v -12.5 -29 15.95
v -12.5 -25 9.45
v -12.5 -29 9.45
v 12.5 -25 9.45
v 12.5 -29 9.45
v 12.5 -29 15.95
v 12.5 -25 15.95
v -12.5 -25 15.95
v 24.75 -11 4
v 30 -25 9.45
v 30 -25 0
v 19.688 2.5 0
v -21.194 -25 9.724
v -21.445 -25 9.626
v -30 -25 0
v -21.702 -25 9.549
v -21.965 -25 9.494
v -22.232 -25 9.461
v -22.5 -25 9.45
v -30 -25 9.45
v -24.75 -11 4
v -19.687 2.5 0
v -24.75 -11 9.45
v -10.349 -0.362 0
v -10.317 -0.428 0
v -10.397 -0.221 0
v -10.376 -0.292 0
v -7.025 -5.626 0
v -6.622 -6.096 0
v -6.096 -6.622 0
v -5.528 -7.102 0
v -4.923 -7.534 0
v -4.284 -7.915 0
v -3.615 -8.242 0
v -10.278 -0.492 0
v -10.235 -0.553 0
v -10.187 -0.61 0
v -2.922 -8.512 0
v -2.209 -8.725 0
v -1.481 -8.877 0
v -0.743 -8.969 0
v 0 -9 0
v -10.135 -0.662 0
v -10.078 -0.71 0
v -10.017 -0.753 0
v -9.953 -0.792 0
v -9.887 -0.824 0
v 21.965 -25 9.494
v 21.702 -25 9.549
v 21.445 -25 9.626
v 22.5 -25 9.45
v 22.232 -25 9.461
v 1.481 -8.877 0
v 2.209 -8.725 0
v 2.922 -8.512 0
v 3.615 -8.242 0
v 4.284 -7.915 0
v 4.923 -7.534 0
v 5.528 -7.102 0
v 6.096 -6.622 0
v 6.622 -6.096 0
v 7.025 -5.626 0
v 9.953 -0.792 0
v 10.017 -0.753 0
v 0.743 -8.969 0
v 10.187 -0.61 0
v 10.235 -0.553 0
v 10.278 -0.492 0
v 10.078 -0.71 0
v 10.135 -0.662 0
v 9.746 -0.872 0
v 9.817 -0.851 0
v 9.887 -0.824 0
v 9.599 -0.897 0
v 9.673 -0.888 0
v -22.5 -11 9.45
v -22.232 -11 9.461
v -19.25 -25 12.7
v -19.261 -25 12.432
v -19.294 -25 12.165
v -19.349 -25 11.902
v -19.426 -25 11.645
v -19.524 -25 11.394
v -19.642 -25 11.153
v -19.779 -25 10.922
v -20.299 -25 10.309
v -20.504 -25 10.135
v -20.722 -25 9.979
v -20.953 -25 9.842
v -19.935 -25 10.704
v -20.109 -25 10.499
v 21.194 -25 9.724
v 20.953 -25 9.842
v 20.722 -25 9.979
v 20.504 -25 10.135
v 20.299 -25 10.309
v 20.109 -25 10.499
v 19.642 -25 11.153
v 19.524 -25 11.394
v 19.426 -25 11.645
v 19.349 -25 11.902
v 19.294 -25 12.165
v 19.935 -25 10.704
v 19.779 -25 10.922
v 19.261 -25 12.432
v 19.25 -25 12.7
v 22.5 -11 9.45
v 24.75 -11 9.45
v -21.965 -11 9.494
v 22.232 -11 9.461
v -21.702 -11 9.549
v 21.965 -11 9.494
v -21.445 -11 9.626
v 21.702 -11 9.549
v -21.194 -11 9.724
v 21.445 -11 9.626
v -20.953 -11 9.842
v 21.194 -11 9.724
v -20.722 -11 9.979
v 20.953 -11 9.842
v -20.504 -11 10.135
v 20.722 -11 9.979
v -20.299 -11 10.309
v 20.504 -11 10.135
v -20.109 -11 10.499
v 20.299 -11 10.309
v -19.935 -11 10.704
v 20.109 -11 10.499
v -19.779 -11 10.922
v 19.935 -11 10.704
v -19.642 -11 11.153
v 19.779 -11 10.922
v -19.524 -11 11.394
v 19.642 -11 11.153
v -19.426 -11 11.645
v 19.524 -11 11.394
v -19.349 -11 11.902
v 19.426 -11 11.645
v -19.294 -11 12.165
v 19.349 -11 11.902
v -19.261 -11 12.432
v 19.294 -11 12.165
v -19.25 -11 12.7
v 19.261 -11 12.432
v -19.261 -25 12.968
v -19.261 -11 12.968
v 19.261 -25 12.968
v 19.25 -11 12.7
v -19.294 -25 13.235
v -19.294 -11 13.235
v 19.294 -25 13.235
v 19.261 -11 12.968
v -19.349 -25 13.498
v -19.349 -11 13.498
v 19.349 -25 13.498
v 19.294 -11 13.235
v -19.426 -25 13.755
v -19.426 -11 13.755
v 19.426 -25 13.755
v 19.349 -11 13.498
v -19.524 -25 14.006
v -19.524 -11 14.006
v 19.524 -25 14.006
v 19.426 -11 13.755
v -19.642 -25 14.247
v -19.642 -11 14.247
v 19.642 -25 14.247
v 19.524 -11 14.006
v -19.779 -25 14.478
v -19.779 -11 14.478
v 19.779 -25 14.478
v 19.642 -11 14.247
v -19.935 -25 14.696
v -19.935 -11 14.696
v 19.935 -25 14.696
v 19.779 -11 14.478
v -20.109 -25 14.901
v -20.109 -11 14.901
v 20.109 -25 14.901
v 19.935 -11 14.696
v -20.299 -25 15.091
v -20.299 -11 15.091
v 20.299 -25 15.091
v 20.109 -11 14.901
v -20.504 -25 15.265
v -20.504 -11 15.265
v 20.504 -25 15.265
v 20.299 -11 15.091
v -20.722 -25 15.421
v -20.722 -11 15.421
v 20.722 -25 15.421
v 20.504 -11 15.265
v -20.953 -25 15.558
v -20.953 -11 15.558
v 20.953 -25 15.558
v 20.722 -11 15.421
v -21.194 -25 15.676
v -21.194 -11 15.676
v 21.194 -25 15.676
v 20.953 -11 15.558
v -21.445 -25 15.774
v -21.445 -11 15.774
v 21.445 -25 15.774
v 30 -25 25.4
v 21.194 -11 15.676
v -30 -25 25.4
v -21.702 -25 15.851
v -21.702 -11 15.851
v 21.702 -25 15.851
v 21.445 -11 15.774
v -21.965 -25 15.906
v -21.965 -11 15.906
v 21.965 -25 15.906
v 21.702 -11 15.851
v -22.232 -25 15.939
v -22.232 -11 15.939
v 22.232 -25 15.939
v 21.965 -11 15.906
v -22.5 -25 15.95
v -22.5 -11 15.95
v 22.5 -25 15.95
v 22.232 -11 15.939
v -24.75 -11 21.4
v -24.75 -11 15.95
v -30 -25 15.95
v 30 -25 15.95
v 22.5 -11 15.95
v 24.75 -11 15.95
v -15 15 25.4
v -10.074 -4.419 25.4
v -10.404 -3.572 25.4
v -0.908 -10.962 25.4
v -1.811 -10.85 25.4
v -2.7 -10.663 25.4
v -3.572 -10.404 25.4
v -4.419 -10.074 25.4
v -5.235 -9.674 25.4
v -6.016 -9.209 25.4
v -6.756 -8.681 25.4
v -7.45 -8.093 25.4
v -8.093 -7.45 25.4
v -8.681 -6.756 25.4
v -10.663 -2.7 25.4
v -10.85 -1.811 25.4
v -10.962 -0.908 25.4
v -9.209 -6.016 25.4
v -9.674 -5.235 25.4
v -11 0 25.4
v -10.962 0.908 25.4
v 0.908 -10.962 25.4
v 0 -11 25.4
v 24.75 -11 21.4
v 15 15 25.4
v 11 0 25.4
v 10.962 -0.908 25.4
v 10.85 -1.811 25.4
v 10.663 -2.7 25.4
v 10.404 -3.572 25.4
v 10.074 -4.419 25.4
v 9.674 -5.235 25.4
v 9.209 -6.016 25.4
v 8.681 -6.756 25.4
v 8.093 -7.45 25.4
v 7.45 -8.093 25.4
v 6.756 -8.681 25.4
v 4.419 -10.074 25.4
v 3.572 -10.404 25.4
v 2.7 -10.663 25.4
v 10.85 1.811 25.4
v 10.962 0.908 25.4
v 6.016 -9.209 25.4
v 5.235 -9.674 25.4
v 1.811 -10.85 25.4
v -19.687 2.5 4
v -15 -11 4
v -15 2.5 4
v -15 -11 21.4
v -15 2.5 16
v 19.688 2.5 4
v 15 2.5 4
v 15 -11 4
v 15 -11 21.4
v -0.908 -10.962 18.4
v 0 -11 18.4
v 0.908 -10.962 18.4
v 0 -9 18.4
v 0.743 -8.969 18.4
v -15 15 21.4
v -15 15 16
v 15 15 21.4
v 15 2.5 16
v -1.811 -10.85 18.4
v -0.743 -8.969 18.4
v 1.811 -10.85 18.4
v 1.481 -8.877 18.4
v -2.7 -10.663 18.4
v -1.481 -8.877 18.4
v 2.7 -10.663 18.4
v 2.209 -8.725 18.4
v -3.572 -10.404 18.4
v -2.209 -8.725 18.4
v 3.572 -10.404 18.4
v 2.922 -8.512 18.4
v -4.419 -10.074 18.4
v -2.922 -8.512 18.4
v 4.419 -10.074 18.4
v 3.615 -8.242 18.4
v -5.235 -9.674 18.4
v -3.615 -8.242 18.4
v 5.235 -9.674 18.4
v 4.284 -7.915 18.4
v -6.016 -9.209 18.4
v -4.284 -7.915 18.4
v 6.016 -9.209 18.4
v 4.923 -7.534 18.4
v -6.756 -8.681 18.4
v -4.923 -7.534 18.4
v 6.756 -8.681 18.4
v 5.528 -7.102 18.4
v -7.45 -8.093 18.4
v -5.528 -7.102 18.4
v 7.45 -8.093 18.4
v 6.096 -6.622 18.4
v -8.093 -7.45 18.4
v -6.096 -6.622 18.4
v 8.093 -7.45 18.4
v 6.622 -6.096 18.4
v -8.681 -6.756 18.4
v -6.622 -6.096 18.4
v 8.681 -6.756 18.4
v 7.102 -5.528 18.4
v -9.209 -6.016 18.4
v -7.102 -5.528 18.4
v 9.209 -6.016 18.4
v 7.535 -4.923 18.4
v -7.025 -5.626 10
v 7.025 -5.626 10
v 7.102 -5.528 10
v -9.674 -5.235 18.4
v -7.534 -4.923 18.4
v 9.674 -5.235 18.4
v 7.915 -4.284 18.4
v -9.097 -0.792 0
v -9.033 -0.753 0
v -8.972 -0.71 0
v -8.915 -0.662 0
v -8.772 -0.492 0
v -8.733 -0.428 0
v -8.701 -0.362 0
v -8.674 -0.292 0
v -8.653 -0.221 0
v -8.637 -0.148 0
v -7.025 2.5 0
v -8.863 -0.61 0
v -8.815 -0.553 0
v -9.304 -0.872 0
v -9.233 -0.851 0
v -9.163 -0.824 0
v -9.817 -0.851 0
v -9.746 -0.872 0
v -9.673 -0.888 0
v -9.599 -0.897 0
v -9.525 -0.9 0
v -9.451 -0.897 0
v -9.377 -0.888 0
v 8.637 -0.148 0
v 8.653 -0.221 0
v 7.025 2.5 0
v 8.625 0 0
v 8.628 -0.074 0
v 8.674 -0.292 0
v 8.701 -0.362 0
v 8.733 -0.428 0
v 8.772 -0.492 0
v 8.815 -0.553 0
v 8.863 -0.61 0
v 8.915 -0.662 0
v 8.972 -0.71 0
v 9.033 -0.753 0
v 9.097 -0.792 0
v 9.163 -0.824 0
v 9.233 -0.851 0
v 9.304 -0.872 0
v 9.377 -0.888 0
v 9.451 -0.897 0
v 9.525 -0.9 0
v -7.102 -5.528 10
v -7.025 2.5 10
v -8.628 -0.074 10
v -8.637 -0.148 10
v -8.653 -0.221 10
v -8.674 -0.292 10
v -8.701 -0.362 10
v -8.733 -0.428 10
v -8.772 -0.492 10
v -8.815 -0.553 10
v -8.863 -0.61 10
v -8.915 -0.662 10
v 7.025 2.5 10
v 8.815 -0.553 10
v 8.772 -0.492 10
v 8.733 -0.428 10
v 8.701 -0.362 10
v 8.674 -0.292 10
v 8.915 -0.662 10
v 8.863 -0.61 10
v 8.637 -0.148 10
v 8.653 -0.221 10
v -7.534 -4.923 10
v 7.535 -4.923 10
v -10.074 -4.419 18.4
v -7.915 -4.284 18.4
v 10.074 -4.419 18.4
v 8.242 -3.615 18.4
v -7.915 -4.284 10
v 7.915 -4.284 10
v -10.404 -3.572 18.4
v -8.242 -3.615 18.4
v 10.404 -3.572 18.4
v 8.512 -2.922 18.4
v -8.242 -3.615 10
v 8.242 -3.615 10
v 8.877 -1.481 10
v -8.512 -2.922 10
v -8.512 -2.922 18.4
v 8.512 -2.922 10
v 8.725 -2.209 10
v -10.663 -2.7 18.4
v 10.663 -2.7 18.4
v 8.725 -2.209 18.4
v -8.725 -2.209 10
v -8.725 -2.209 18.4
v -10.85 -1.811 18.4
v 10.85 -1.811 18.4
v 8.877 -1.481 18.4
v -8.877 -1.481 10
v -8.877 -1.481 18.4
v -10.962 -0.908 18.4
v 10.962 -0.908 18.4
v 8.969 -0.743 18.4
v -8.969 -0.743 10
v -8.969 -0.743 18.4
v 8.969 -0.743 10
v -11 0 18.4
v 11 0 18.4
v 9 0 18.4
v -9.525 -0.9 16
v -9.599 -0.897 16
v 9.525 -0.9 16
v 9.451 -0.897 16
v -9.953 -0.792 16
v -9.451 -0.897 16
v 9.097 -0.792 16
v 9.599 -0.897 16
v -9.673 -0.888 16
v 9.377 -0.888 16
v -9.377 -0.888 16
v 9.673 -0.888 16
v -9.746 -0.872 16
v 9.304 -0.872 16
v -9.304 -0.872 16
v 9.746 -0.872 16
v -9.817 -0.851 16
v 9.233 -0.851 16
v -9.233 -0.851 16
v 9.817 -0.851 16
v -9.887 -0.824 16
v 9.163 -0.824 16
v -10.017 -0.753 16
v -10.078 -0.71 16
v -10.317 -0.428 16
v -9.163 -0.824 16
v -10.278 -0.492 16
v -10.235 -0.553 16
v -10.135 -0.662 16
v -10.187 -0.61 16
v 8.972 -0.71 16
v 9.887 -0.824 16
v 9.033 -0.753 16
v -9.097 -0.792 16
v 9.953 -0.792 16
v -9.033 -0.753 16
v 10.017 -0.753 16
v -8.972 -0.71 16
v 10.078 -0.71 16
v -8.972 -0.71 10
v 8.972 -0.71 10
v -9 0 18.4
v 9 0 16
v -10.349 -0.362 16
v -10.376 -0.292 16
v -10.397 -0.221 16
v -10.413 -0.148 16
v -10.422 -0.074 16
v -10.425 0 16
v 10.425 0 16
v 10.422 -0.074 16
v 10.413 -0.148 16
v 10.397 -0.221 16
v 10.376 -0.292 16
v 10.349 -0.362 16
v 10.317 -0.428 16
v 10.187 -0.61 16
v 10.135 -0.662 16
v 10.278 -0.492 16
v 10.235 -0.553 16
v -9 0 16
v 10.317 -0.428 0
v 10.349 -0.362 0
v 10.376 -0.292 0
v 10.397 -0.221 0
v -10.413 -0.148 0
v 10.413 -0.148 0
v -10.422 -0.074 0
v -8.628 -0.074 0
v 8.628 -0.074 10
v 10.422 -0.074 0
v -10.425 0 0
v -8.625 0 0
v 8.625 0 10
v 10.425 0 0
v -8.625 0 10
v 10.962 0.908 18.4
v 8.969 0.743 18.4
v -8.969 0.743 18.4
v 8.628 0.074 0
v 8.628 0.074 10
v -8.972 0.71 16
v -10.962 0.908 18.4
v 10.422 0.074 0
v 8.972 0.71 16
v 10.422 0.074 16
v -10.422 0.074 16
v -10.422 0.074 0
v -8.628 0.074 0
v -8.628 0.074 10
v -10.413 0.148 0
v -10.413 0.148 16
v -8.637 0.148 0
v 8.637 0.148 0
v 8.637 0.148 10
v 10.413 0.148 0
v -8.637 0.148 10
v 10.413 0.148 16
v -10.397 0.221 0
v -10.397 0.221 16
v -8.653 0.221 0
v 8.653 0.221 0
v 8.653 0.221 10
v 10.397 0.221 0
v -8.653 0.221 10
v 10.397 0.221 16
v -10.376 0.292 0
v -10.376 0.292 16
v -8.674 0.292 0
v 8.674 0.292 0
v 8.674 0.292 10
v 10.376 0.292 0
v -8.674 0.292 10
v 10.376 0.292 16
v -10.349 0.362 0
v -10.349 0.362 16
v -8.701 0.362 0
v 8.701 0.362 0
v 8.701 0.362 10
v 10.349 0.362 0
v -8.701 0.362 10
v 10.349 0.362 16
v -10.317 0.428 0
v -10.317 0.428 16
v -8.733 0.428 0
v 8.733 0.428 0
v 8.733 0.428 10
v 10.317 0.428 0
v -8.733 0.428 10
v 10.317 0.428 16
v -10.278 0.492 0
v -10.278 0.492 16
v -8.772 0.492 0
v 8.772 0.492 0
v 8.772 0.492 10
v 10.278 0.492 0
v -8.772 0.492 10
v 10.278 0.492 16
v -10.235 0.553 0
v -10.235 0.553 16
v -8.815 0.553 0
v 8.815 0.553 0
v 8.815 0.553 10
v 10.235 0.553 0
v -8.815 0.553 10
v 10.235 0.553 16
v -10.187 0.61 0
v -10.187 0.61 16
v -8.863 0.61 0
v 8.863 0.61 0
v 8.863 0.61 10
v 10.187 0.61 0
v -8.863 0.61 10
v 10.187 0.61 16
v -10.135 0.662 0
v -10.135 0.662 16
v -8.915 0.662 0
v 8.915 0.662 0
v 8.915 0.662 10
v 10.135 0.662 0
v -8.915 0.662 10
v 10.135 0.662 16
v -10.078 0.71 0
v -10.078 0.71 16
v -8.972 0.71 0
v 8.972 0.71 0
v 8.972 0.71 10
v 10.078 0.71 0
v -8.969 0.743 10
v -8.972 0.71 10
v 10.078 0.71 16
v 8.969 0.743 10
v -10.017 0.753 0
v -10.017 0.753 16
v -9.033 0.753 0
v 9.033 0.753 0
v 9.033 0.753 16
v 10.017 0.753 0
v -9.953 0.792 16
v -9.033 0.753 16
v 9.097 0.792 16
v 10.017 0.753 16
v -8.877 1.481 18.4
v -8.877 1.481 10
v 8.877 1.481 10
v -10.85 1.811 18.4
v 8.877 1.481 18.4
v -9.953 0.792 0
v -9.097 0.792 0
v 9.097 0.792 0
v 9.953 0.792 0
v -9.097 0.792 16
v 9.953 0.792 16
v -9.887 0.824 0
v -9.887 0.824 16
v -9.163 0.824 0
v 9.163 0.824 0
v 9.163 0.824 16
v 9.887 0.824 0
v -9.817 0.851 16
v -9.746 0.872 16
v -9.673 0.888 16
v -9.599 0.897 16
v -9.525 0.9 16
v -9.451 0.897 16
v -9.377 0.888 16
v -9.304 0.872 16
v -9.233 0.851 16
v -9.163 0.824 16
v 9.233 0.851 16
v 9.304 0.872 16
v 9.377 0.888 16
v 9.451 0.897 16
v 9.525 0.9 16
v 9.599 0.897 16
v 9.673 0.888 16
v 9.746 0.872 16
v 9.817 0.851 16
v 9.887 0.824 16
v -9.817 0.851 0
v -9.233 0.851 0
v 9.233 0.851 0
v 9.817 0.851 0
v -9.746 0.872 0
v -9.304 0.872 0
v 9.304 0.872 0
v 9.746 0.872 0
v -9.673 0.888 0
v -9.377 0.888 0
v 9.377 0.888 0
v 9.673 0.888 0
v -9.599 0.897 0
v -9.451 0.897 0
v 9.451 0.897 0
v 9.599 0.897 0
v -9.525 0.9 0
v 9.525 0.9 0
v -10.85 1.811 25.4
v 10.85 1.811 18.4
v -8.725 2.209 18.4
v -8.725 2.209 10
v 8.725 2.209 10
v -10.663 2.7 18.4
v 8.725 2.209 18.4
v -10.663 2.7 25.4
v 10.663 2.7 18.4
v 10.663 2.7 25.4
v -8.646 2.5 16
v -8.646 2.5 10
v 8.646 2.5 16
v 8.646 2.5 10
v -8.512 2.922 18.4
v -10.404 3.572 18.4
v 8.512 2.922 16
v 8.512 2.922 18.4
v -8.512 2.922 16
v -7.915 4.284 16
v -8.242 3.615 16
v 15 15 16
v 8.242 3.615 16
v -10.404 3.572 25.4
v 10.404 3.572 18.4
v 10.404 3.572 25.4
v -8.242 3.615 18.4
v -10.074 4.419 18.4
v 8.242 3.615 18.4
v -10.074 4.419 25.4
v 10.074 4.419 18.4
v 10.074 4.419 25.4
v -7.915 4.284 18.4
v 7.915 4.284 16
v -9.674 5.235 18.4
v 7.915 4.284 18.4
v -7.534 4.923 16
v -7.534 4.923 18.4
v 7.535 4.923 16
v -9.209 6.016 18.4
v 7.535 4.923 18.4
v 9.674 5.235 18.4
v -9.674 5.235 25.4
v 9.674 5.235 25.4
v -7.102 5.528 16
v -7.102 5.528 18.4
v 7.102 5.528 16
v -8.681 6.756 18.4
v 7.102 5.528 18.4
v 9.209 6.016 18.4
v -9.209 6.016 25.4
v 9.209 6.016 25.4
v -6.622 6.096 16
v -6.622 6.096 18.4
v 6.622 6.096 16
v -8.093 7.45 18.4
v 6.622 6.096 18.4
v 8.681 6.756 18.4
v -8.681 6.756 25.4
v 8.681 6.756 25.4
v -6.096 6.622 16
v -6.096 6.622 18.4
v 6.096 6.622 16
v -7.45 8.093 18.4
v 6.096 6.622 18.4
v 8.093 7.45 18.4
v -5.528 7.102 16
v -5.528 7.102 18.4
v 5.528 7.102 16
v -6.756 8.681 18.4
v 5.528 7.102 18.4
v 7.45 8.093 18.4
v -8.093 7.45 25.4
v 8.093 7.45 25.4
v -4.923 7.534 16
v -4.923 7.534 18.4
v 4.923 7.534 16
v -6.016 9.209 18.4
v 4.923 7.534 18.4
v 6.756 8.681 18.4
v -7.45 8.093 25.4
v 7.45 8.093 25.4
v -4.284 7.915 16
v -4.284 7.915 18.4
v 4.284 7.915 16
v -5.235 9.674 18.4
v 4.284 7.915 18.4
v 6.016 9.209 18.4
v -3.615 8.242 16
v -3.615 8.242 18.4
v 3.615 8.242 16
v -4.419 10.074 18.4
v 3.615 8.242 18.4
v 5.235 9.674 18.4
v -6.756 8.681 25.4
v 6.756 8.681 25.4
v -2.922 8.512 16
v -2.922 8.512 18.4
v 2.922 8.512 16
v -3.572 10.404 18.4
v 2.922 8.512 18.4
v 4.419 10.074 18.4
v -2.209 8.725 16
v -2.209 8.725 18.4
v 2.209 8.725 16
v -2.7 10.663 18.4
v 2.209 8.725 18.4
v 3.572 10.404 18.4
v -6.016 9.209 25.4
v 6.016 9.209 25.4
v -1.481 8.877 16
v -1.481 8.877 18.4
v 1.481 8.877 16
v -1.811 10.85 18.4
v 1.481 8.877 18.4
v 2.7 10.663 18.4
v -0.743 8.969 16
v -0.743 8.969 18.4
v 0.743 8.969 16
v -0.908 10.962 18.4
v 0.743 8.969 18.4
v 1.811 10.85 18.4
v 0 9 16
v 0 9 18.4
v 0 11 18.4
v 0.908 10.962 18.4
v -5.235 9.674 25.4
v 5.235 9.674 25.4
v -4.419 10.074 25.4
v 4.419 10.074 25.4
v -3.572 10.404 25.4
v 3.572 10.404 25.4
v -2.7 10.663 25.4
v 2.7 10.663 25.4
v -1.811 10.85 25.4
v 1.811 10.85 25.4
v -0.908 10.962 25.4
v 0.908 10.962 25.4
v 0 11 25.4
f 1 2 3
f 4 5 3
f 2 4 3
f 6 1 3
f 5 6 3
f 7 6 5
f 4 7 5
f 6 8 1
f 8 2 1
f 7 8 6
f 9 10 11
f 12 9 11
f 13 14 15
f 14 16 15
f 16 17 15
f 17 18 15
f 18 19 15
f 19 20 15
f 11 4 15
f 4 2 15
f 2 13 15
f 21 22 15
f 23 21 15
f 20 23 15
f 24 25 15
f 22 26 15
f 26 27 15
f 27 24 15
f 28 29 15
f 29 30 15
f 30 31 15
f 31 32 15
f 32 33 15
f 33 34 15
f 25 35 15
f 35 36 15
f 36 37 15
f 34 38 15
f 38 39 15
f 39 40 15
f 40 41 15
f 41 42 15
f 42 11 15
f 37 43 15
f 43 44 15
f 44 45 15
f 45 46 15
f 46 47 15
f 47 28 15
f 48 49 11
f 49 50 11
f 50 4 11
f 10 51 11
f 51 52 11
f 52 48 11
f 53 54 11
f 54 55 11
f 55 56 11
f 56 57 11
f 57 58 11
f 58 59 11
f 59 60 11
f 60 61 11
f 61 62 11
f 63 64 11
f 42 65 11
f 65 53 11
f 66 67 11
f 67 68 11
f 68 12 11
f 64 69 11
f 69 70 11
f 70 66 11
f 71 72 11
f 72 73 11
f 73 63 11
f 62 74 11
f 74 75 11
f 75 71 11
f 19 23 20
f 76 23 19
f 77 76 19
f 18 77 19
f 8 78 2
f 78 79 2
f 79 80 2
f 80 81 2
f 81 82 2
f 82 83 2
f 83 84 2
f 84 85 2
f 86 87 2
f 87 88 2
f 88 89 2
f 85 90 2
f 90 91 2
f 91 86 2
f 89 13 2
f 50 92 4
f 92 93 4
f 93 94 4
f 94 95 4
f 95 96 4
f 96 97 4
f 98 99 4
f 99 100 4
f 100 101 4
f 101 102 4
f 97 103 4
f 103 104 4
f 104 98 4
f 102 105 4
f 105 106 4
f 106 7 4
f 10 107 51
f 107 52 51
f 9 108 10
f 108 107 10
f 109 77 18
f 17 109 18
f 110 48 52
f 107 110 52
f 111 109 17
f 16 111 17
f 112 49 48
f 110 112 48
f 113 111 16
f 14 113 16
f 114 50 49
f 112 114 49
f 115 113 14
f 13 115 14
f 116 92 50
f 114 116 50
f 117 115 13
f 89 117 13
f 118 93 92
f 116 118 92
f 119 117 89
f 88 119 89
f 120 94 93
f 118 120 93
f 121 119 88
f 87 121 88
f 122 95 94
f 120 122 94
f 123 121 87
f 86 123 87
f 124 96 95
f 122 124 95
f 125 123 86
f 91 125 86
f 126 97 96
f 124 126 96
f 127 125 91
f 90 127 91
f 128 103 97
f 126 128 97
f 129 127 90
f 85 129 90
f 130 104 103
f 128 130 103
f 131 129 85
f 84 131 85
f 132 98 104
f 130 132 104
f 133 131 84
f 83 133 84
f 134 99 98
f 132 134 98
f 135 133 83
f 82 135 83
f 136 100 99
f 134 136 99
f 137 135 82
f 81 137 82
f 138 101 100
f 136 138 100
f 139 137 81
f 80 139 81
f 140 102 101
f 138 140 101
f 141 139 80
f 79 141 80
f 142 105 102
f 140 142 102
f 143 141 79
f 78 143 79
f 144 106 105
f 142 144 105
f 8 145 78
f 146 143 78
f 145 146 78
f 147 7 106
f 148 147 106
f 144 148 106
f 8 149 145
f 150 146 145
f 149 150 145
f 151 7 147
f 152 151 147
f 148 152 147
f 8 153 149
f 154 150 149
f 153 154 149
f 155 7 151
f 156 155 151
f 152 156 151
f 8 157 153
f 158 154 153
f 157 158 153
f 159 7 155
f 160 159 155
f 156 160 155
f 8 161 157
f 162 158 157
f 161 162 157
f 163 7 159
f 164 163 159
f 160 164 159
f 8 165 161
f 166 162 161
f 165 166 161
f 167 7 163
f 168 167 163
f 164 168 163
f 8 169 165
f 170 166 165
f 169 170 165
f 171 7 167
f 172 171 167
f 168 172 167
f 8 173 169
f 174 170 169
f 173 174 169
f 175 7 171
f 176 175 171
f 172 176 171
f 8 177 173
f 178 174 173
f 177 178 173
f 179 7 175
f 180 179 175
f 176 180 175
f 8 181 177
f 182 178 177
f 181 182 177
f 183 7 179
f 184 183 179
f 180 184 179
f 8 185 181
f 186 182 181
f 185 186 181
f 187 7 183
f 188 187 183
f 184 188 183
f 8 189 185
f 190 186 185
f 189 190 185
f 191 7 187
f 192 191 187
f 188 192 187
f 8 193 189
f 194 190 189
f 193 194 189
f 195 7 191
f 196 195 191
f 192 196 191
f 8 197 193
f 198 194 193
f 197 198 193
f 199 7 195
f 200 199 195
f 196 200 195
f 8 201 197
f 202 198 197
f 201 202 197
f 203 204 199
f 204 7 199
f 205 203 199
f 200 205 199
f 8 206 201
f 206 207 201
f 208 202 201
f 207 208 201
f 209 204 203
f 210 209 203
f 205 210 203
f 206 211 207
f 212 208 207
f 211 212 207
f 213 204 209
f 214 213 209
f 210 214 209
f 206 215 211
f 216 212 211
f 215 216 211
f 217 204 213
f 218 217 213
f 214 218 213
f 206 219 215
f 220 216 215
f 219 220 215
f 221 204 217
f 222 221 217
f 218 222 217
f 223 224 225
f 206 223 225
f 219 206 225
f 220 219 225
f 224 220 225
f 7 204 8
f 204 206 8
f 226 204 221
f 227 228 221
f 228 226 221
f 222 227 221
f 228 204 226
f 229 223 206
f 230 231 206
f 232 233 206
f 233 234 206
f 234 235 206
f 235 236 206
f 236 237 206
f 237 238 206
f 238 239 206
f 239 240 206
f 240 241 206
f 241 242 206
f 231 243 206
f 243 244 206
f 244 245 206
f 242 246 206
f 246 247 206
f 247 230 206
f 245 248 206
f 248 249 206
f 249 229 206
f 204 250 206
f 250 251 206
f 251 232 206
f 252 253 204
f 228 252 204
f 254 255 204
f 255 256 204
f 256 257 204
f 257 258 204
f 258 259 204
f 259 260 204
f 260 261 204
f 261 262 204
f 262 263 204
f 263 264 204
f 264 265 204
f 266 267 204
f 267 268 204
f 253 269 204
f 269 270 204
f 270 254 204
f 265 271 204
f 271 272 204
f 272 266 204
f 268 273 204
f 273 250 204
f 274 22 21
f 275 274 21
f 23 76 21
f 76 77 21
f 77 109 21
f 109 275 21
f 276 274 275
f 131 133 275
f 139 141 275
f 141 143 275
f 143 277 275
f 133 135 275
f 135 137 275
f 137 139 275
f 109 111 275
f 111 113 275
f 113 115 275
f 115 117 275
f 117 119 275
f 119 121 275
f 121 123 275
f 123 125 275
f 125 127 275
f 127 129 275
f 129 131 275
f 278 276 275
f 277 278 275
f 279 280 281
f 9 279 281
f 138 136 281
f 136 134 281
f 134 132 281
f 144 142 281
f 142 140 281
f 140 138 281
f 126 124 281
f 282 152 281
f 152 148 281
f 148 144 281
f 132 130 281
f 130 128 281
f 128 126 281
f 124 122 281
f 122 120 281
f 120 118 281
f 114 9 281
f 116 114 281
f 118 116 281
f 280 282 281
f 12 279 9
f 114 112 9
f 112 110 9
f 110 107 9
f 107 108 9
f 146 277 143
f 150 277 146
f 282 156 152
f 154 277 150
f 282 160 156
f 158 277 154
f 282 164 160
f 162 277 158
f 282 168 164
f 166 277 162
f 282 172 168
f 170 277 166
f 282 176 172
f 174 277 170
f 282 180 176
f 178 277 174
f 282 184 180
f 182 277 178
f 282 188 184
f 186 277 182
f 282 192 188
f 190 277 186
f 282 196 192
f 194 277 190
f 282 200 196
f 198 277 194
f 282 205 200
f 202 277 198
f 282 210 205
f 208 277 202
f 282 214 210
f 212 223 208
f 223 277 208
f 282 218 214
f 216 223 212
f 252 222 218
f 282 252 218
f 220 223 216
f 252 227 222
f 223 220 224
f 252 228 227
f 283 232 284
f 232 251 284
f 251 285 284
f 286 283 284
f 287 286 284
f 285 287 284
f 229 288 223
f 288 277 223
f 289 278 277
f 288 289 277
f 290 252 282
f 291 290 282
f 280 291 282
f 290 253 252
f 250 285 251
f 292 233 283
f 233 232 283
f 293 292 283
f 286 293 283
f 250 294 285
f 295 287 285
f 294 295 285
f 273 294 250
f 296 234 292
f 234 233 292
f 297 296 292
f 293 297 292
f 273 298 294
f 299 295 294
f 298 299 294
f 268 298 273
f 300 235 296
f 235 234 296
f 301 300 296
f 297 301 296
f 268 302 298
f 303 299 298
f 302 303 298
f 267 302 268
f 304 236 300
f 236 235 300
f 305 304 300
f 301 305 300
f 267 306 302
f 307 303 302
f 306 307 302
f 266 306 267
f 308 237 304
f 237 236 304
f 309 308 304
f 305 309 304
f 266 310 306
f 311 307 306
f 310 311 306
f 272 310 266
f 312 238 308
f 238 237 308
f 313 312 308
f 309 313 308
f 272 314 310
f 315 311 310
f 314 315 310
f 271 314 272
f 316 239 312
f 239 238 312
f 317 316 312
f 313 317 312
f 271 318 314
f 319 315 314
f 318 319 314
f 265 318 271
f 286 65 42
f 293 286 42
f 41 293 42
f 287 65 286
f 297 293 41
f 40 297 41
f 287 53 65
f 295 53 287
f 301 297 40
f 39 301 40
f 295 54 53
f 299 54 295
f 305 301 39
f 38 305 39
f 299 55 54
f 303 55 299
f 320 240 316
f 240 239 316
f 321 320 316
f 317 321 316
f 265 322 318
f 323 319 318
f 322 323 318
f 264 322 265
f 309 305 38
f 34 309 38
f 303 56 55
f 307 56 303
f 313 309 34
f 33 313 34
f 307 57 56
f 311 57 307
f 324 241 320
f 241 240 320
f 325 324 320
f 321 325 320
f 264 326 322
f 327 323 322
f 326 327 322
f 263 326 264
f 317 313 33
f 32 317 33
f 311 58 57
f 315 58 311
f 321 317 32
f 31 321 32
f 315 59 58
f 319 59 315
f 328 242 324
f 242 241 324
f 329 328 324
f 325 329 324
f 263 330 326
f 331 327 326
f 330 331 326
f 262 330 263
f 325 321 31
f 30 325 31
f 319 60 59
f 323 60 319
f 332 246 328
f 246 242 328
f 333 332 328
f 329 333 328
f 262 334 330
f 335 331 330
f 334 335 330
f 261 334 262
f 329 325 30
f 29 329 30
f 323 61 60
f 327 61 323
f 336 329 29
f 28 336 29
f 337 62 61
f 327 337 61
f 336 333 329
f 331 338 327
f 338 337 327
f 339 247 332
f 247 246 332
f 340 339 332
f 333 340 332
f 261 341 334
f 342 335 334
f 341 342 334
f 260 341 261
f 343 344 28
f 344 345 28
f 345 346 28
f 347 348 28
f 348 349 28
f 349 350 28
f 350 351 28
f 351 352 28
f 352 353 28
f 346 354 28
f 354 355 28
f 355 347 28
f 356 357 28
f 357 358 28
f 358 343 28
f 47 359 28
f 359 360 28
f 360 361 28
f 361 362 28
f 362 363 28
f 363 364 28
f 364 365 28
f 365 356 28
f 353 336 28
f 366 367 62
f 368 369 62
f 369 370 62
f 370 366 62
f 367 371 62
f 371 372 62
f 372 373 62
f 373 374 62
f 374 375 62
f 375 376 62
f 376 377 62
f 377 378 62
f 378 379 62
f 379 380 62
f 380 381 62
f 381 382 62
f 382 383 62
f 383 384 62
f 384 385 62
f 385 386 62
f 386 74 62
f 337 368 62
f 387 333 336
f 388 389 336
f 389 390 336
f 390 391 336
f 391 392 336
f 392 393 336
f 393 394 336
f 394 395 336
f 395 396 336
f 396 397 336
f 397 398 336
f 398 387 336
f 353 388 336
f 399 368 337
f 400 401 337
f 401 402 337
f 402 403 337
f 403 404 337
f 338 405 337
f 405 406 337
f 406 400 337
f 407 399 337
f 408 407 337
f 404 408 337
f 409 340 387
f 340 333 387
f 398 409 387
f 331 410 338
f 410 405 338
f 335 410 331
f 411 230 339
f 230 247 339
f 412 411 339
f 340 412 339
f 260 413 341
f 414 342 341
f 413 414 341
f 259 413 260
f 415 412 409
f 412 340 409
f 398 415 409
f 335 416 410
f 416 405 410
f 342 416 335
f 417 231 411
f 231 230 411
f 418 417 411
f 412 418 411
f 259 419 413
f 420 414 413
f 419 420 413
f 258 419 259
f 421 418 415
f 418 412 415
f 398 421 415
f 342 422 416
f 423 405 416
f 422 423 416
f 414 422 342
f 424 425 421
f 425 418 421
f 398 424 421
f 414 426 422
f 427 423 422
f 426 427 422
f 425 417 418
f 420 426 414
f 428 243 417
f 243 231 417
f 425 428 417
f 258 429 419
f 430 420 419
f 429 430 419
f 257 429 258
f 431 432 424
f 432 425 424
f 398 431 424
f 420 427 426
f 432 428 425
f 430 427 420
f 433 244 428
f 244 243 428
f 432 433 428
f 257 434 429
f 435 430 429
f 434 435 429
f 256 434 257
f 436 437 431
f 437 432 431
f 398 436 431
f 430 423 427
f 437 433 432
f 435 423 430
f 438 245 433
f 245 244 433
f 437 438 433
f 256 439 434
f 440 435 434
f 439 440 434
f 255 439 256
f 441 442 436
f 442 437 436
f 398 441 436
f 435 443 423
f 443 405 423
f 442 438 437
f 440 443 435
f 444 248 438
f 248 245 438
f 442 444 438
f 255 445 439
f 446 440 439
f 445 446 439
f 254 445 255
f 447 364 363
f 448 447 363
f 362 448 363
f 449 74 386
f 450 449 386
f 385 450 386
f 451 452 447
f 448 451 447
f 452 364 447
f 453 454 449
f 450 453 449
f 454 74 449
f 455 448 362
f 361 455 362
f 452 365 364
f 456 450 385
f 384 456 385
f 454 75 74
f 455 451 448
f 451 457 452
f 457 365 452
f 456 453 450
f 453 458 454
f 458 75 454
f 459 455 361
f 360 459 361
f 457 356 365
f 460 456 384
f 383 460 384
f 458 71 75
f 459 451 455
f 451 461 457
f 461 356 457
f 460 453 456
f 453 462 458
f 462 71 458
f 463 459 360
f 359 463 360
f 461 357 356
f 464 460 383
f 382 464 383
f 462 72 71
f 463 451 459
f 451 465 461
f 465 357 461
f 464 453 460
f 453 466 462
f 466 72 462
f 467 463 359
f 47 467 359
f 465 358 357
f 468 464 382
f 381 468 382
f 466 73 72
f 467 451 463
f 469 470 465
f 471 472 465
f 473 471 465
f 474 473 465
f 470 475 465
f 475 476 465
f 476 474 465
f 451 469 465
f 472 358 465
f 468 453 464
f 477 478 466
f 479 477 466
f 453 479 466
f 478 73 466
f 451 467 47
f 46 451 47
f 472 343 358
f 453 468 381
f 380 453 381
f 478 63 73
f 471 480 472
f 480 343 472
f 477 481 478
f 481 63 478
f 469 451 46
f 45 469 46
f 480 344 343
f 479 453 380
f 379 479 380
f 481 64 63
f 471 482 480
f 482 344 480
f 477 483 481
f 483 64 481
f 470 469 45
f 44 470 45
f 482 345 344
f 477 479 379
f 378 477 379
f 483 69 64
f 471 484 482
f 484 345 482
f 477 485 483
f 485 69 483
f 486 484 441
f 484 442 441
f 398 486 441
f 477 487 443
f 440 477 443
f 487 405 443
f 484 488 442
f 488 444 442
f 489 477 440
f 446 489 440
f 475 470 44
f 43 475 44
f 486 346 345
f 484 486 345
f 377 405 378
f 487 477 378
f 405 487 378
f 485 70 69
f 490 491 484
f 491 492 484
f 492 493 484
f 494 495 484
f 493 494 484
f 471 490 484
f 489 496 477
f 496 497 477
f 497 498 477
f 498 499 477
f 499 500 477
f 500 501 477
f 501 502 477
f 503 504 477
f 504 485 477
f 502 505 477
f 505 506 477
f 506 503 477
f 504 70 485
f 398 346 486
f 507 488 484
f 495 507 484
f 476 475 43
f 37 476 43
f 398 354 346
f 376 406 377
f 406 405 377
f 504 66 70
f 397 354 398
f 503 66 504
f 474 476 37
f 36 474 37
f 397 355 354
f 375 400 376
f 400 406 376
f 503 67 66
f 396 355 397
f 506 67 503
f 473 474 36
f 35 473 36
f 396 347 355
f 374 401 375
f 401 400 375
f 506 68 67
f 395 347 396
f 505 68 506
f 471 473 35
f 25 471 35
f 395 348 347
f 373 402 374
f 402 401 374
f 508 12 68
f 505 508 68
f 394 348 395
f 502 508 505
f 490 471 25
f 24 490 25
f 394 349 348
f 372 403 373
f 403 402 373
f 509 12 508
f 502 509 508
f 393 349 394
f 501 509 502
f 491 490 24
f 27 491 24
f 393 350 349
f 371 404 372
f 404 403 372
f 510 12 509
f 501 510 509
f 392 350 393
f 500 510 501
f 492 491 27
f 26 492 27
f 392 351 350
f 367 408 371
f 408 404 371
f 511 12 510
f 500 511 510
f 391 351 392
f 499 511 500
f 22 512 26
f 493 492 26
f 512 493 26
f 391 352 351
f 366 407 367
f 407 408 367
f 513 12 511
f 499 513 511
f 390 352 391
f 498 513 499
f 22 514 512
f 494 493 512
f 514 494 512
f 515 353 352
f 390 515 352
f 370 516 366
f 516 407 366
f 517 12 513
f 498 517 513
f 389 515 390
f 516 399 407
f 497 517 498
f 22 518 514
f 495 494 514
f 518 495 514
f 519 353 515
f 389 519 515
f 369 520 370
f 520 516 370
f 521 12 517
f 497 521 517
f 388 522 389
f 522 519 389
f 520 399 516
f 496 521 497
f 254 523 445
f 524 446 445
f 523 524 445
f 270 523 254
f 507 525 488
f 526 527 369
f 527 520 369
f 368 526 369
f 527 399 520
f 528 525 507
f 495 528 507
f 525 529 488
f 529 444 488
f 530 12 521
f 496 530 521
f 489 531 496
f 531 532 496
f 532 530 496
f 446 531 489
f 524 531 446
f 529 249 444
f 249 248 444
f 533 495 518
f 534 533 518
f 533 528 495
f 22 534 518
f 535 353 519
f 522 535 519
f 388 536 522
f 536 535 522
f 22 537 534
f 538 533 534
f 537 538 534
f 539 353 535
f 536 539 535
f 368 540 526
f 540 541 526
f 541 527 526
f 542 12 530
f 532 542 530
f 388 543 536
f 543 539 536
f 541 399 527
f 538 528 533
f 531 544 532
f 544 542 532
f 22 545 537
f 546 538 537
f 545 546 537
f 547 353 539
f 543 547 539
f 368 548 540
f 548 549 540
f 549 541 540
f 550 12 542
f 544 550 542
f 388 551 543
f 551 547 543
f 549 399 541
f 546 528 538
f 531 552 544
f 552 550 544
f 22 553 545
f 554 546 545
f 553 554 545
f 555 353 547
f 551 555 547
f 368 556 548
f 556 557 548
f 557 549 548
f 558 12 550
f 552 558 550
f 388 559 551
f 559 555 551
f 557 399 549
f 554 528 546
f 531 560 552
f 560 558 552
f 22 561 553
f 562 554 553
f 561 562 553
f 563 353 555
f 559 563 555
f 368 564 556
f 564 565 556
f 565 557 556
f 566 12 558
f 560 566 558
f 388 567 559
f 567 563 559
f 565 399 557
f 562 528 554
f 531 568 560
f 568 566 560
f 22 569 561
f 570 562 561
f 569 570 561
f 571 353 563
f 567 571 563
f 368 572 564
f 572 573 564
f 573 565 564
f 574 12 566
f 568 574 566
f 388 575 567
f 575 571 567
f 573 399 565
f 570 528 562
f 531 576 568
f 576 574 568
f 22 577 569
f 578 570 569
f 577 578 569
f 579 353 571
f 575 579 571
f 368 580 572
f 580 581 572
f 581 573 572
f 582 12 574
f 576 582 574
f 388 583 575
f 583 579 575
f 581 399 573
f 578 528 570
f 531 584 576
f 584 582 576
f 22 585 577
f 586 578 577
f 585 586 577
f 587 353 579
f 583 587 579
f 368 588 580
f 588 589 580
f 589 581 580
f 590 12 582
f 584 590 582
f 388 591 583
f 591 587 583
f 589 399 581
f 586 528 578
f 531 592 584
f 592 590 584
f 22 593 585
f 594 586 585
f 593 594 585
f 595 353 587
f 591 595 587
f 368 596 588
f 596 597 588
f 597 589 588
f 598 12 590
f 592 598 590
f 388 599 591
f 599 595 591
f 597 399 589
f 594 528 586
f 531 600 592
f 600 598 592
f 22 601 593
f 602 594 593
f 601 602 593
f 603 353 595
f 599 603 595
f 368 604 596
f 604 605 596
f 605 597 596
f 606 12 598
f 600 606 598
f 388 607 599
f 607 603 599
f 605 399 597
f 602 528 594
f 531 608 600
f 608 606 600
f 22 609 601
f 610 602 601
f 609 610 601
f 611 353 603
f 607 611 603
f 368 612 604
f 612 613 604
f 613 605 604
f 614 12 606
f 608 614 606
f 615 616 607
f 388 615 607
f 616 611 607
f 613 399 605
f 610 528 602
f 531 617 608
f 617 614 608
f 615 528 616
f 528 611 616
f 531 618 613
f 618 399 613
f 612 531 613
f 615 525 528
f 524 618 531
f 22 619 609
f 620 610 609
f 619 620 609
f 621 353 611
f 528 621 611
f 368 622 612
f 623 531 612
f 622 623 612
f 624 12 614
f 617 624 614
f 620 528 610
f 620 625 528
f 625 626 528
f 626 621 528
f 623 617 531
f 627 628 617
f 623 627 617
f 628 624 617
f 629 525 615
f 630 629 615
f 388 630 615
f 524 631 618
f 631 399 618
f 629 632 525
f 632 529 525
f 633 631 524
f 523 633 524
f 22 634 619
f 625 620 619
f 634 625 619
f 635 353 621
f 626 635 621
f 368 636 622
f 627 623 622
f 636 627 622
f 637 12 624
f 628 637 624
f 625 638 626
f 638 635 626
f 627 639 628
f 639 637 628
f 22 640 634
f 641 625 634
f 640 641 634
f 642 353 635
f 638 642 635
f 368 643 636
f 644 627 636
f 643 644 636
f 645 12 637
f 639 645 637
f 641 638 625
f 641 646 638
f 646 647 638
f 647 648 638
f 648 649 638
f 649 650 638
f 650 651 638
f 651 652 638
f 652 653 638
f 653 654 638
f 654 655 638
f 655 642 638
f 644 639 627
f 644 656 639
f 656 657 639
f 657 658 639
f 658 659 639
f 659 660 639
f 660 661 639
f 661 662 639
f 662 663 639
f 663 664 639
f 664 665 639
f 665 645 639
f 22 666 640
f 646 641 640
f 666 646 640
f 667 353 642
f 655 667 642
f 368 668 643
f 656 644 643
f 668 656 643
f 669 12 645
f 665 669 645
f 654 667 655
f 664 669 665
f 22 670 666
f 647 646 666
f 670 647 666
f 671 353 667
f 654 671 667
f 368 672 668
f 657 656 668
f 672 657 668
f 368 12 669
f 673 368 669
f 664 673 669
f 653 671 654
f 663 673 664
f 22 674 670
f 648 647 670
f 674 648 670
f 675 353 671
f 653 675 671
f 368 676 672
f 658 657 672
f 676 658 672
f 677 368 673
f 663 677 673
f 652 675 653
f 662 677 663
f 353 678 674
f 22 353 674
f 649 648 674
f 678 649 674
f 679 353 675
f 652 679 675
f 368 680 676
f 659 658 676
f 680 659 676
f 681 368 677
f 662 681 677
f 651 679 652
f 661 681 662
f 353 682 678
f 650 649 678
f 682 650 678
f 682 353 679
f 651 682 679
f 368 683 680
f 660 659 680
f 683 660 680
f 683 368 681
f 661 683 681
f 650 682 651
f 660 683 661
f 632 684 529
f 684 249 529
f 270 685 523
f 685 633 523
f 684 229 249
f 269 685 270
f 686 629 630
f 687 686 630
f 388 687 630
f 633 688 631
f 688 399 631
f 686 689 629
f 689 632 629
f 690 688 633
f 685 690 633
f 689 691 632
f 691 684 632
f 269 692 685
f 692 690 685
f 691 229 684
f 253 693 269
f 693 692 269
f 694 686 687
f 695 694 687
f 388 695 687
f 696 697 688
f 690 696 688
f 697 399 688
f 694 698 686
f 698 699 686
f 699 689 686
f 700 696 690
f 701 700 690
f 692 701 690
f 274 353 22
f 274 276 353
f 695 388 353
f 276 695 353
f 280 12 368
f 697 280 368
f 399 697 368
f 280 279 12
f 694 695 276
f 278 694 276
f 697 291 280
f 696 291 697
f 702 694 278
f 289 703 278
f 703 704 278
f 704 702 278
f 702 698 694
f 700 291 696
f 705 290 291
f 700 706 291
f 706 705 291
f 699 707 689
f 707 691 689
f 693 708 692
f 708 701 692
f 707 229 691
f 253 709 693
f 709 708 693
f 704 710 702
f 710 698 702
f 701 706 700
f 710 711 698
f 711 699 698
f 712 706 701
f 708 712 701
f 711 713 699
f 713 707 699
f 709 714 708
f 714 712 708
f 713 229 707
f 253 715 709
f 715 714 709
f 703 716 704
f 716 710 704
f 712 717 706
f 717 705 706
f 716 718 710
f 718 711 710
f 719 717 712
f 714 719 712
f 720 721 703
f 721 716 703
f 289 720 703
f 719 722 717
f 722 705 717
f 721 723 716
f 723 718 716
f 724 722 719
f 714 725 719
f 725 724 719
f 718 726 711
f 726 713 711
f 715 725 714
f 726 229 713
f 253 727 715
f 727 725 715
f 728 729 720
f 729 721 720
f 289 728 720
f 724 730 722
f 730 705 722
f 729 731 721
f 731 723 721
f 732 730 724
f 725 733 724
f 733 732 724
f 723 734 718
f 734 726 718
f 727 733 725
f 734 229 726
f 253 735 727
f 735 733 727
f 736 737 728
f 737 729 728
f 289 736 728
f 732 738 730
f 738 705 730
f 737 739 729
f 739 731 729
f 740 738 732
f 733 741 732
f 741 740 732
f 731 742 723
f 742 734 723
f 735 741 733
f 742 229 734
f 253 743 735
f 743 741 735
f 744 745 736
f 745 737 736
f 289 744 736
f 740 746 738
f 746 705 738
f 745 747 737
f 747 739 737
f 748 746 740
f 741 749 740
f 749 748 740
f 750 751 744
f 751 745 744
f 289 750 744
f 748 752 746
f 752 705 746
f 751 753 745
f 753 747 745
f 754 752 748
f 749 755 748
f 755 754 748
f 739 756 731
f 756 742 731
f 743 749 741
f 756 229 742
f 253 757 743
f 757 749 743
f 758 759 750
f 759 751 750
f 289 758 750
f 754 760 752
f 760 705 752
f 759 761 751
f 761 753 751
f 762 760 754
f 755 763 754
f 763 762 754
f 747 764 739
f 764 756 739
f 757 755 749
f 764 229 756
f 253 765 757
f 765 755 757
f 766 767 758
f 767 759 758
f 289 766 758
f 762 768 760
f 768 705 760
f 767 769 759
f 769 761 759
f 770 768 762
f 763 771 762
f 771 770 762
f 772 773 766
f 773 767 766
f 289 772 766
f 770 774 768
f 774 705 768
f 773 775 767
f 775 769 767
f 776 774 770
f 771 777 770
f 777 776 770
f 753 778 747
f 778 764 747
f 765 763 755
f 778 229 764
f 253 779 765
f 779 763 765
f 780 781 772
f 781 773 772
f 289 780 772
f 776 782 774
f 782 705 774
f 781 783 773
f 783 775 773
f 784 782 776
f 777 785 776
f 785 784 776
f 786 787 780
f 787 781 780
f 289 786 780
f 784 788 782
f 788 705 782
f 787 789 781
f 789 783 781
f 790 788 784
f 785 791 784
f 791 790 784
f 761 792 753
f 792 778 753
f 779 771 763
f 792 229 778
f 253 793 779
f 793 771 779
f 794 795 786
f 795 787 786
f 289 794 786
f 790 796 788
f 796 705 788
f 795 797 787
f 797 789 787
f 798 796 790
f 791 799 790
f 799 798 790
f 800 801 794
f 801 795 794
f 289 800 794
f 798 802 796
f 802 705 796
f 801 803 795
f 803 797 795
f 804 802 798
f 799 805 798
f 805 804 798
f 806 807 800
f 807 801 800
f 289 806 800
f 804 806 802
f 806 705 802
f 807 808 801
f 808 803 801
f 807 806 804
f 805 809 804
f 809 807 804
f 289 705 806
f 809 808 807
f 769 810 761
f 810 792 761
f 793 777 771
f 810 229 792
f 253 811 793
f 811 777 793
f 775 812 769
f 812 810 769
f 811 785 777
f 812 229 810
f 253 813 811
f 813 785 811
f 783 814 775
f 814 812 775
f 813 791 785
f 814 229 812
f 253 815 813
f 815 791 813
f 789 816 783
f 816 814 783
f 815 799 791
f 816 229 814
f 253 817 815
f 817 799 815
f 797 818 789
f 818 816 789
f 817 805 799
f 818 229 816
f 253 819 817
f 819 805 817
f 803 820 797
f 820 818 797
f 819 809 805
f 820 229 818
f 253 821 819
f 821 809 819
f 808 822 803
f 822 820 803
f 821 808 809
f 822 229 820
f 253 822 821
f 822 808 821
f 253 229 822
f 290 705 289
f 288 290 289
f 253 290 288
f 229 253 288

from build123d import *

# Parameters (mm, degrees)
SKETCH3_R              = 9
BOSS_EXTRUDE3_DEPTH    = 25.4
CUT_EXTRUDE2_START     = -26
CUT_EXTRUDE2_OUTLINE_W = 15
CUT_EXTRUDE2_OUTLINE_H = 17.4
CUT_EXTRUDE2_DEPTH     = 26
SKETCH5_W              = 5
SKETCH5_H              = 27.5
BOSS_EXTRUDE4_DEPTH    = 10
SKETCH6_W              = 60
SKETCH6_H              = 12.5
CUT_EXTRUDE3_DEPTH     = 16
SKETCH7_W              = 25
SKETCH7_H              = 6.5
BOSS_EXTRUDE5_DEPTH    = 4
CUT_EXTRUDE4_DEPTH     = 57.081726079
SKETCH9_R              = 11
CUT_EXTRUDE5_DEPTH     = 7
CUT_EXTRUDE6_START     = -16
SKETCH5_3_R            = 0.9
CUT_EXTRUDE6_DEPTH     = 16


# Read off the part's stored shape, not the designer's step: Cut-Extrude2
with BuildPart() as part:
    # Sketch3 → Boss-Extrude3 (new body)
    with BuildSketch(Plane.XY):
        Polygon((-30, -25), (30, -25), (15, 15), (-15, 15), align=None)
        Circle(SKETCH3_R, mode=Mode.SUBTRACT)
    extrude(amount=BOSS_EXTRUDE3_DEPTH)

    # Cut-Extrude2 outline → Cut-Extrude2 (cut)
    with BuildSketch(Plane(origin=(0, 15, 0), x_dir=(1, 0, 0), z_dir=(0, 1, 0)).offset(CUT_EXTRUDE2_START)):
        with Locations((22.5, -12.7)):
            Rectangle(CUT_EXTRUDE2_OUTLINE_W, CUT_EXTRUDE2_OUTLINE_H)
        with Locations((-22.5, -12.7)):
            Rectangle(CUT_EXTRUDE2_OUTLINE_W, CUT_EXTRUDE2_OUTLINE_H)
    extrude(amount=CUT_EXTRUDE2_DEPTH, mode=Mode.SUBTRACT)

    # Sketch5 → Boss-Extrude4 (add)
    with BuildSketch(Plane(origin=(0, 0, 0), x_dir=(-1, 0, 0), z_dir=(0, 0, -1))):
        with Locations((-9.525, -11.25)):
            Rectangle(SKETCH5_W, SKETCH5_H)
        with Locations((9.525, -11.25)):
            Rectangle(SKETCH5_W, SKETCH5_H)
    extrude(amount=-BOSS_EXTRUDE4_DEPTH)

    # Sketch6 → Cut-Extrude3 (cut)
    with BuildSketch(Plane(origin=(0, 0, 0), x_dir=(-1, 0, 0), z_dir=(0, 0, -1))):
        with Locations((0, 8.75)):
            Rectangle(SKETCH6_W, SKETCH6_H)
    extrude(amount=-CUT_EXTRUDE3_DEPTH, mode=Mode.SUBTRACT)

    # Sketch7 → Boss-Extrude5 (add)
    with BuildSketch(Plane.XZ.offset(25)):
        with Locations((0, 12.7)):
            Rectangle(SKETCH7_W, SKETCH7_H)
    extrude(amount=BOSS_EXTRUDE5_DEPTH)

    # Sketch8 → Cut-Extrude4 (cut, through all)
    with BuildSketch(Plane.XZ.offset(25)):
        with BuildLine():
            Line((37.5, 9.45), (22.5, 9.45))
            ThreePointArc((22.5, 9.45), (19.25, 12.7), (22.5, 15.95))
            Line((22.5, 15.95), (37.5, 15.95))
            ThreePointArc((37.5, 15.95), (40.75, 12.7), (37.5, 9.45))
        make_face()
        with BuildLine():
            Line((-37.5, 15.95), (-22.5, 15.95))
            ThreePointArc((-22.5, 15.95), (-19.25, 12.7), (-22.5, 9.45))
            Line((-22.5, 9.45), (-37.5, 9.45))
            ThreePointArc((-37.5, 9.45), (-40.75, 12.7), (-37.5, 15.95))
        make_face()
    extrude(amount=-CUT_EXTRUDE4_DEPTH, mode=Mode.SUBTRACT)

    # Sketch9 → Cut-Extrude5 (cut)
    with BuildSketch(Plane.XY.offset(25.4)):
        Circle(SKETCH9_R)
    extrude(amount=-CUT_EXTRUDE5_DEPTH, mode=Mode.SUBTRACT)

    # Sketch5<3> → Cut-Extrude6 (cut)
    with BuildSketch(Plane(origin=(0, 0, 0), x_dir=(-1, 0, 0), z_dir=(0, 0, -1)).offset(CUT_EXTRUDE6_START)):
        with Locations((9.525, 0)):
            Circle(SKETCH5_3_R)
        with Locations((-9.525, 0)):
            Circle(SKETCH5_3_R)
    extrude(amount=CUT_EXTRUDE6_DEPTH, mode=Mode.SUBTRACT)


solid = part.part
